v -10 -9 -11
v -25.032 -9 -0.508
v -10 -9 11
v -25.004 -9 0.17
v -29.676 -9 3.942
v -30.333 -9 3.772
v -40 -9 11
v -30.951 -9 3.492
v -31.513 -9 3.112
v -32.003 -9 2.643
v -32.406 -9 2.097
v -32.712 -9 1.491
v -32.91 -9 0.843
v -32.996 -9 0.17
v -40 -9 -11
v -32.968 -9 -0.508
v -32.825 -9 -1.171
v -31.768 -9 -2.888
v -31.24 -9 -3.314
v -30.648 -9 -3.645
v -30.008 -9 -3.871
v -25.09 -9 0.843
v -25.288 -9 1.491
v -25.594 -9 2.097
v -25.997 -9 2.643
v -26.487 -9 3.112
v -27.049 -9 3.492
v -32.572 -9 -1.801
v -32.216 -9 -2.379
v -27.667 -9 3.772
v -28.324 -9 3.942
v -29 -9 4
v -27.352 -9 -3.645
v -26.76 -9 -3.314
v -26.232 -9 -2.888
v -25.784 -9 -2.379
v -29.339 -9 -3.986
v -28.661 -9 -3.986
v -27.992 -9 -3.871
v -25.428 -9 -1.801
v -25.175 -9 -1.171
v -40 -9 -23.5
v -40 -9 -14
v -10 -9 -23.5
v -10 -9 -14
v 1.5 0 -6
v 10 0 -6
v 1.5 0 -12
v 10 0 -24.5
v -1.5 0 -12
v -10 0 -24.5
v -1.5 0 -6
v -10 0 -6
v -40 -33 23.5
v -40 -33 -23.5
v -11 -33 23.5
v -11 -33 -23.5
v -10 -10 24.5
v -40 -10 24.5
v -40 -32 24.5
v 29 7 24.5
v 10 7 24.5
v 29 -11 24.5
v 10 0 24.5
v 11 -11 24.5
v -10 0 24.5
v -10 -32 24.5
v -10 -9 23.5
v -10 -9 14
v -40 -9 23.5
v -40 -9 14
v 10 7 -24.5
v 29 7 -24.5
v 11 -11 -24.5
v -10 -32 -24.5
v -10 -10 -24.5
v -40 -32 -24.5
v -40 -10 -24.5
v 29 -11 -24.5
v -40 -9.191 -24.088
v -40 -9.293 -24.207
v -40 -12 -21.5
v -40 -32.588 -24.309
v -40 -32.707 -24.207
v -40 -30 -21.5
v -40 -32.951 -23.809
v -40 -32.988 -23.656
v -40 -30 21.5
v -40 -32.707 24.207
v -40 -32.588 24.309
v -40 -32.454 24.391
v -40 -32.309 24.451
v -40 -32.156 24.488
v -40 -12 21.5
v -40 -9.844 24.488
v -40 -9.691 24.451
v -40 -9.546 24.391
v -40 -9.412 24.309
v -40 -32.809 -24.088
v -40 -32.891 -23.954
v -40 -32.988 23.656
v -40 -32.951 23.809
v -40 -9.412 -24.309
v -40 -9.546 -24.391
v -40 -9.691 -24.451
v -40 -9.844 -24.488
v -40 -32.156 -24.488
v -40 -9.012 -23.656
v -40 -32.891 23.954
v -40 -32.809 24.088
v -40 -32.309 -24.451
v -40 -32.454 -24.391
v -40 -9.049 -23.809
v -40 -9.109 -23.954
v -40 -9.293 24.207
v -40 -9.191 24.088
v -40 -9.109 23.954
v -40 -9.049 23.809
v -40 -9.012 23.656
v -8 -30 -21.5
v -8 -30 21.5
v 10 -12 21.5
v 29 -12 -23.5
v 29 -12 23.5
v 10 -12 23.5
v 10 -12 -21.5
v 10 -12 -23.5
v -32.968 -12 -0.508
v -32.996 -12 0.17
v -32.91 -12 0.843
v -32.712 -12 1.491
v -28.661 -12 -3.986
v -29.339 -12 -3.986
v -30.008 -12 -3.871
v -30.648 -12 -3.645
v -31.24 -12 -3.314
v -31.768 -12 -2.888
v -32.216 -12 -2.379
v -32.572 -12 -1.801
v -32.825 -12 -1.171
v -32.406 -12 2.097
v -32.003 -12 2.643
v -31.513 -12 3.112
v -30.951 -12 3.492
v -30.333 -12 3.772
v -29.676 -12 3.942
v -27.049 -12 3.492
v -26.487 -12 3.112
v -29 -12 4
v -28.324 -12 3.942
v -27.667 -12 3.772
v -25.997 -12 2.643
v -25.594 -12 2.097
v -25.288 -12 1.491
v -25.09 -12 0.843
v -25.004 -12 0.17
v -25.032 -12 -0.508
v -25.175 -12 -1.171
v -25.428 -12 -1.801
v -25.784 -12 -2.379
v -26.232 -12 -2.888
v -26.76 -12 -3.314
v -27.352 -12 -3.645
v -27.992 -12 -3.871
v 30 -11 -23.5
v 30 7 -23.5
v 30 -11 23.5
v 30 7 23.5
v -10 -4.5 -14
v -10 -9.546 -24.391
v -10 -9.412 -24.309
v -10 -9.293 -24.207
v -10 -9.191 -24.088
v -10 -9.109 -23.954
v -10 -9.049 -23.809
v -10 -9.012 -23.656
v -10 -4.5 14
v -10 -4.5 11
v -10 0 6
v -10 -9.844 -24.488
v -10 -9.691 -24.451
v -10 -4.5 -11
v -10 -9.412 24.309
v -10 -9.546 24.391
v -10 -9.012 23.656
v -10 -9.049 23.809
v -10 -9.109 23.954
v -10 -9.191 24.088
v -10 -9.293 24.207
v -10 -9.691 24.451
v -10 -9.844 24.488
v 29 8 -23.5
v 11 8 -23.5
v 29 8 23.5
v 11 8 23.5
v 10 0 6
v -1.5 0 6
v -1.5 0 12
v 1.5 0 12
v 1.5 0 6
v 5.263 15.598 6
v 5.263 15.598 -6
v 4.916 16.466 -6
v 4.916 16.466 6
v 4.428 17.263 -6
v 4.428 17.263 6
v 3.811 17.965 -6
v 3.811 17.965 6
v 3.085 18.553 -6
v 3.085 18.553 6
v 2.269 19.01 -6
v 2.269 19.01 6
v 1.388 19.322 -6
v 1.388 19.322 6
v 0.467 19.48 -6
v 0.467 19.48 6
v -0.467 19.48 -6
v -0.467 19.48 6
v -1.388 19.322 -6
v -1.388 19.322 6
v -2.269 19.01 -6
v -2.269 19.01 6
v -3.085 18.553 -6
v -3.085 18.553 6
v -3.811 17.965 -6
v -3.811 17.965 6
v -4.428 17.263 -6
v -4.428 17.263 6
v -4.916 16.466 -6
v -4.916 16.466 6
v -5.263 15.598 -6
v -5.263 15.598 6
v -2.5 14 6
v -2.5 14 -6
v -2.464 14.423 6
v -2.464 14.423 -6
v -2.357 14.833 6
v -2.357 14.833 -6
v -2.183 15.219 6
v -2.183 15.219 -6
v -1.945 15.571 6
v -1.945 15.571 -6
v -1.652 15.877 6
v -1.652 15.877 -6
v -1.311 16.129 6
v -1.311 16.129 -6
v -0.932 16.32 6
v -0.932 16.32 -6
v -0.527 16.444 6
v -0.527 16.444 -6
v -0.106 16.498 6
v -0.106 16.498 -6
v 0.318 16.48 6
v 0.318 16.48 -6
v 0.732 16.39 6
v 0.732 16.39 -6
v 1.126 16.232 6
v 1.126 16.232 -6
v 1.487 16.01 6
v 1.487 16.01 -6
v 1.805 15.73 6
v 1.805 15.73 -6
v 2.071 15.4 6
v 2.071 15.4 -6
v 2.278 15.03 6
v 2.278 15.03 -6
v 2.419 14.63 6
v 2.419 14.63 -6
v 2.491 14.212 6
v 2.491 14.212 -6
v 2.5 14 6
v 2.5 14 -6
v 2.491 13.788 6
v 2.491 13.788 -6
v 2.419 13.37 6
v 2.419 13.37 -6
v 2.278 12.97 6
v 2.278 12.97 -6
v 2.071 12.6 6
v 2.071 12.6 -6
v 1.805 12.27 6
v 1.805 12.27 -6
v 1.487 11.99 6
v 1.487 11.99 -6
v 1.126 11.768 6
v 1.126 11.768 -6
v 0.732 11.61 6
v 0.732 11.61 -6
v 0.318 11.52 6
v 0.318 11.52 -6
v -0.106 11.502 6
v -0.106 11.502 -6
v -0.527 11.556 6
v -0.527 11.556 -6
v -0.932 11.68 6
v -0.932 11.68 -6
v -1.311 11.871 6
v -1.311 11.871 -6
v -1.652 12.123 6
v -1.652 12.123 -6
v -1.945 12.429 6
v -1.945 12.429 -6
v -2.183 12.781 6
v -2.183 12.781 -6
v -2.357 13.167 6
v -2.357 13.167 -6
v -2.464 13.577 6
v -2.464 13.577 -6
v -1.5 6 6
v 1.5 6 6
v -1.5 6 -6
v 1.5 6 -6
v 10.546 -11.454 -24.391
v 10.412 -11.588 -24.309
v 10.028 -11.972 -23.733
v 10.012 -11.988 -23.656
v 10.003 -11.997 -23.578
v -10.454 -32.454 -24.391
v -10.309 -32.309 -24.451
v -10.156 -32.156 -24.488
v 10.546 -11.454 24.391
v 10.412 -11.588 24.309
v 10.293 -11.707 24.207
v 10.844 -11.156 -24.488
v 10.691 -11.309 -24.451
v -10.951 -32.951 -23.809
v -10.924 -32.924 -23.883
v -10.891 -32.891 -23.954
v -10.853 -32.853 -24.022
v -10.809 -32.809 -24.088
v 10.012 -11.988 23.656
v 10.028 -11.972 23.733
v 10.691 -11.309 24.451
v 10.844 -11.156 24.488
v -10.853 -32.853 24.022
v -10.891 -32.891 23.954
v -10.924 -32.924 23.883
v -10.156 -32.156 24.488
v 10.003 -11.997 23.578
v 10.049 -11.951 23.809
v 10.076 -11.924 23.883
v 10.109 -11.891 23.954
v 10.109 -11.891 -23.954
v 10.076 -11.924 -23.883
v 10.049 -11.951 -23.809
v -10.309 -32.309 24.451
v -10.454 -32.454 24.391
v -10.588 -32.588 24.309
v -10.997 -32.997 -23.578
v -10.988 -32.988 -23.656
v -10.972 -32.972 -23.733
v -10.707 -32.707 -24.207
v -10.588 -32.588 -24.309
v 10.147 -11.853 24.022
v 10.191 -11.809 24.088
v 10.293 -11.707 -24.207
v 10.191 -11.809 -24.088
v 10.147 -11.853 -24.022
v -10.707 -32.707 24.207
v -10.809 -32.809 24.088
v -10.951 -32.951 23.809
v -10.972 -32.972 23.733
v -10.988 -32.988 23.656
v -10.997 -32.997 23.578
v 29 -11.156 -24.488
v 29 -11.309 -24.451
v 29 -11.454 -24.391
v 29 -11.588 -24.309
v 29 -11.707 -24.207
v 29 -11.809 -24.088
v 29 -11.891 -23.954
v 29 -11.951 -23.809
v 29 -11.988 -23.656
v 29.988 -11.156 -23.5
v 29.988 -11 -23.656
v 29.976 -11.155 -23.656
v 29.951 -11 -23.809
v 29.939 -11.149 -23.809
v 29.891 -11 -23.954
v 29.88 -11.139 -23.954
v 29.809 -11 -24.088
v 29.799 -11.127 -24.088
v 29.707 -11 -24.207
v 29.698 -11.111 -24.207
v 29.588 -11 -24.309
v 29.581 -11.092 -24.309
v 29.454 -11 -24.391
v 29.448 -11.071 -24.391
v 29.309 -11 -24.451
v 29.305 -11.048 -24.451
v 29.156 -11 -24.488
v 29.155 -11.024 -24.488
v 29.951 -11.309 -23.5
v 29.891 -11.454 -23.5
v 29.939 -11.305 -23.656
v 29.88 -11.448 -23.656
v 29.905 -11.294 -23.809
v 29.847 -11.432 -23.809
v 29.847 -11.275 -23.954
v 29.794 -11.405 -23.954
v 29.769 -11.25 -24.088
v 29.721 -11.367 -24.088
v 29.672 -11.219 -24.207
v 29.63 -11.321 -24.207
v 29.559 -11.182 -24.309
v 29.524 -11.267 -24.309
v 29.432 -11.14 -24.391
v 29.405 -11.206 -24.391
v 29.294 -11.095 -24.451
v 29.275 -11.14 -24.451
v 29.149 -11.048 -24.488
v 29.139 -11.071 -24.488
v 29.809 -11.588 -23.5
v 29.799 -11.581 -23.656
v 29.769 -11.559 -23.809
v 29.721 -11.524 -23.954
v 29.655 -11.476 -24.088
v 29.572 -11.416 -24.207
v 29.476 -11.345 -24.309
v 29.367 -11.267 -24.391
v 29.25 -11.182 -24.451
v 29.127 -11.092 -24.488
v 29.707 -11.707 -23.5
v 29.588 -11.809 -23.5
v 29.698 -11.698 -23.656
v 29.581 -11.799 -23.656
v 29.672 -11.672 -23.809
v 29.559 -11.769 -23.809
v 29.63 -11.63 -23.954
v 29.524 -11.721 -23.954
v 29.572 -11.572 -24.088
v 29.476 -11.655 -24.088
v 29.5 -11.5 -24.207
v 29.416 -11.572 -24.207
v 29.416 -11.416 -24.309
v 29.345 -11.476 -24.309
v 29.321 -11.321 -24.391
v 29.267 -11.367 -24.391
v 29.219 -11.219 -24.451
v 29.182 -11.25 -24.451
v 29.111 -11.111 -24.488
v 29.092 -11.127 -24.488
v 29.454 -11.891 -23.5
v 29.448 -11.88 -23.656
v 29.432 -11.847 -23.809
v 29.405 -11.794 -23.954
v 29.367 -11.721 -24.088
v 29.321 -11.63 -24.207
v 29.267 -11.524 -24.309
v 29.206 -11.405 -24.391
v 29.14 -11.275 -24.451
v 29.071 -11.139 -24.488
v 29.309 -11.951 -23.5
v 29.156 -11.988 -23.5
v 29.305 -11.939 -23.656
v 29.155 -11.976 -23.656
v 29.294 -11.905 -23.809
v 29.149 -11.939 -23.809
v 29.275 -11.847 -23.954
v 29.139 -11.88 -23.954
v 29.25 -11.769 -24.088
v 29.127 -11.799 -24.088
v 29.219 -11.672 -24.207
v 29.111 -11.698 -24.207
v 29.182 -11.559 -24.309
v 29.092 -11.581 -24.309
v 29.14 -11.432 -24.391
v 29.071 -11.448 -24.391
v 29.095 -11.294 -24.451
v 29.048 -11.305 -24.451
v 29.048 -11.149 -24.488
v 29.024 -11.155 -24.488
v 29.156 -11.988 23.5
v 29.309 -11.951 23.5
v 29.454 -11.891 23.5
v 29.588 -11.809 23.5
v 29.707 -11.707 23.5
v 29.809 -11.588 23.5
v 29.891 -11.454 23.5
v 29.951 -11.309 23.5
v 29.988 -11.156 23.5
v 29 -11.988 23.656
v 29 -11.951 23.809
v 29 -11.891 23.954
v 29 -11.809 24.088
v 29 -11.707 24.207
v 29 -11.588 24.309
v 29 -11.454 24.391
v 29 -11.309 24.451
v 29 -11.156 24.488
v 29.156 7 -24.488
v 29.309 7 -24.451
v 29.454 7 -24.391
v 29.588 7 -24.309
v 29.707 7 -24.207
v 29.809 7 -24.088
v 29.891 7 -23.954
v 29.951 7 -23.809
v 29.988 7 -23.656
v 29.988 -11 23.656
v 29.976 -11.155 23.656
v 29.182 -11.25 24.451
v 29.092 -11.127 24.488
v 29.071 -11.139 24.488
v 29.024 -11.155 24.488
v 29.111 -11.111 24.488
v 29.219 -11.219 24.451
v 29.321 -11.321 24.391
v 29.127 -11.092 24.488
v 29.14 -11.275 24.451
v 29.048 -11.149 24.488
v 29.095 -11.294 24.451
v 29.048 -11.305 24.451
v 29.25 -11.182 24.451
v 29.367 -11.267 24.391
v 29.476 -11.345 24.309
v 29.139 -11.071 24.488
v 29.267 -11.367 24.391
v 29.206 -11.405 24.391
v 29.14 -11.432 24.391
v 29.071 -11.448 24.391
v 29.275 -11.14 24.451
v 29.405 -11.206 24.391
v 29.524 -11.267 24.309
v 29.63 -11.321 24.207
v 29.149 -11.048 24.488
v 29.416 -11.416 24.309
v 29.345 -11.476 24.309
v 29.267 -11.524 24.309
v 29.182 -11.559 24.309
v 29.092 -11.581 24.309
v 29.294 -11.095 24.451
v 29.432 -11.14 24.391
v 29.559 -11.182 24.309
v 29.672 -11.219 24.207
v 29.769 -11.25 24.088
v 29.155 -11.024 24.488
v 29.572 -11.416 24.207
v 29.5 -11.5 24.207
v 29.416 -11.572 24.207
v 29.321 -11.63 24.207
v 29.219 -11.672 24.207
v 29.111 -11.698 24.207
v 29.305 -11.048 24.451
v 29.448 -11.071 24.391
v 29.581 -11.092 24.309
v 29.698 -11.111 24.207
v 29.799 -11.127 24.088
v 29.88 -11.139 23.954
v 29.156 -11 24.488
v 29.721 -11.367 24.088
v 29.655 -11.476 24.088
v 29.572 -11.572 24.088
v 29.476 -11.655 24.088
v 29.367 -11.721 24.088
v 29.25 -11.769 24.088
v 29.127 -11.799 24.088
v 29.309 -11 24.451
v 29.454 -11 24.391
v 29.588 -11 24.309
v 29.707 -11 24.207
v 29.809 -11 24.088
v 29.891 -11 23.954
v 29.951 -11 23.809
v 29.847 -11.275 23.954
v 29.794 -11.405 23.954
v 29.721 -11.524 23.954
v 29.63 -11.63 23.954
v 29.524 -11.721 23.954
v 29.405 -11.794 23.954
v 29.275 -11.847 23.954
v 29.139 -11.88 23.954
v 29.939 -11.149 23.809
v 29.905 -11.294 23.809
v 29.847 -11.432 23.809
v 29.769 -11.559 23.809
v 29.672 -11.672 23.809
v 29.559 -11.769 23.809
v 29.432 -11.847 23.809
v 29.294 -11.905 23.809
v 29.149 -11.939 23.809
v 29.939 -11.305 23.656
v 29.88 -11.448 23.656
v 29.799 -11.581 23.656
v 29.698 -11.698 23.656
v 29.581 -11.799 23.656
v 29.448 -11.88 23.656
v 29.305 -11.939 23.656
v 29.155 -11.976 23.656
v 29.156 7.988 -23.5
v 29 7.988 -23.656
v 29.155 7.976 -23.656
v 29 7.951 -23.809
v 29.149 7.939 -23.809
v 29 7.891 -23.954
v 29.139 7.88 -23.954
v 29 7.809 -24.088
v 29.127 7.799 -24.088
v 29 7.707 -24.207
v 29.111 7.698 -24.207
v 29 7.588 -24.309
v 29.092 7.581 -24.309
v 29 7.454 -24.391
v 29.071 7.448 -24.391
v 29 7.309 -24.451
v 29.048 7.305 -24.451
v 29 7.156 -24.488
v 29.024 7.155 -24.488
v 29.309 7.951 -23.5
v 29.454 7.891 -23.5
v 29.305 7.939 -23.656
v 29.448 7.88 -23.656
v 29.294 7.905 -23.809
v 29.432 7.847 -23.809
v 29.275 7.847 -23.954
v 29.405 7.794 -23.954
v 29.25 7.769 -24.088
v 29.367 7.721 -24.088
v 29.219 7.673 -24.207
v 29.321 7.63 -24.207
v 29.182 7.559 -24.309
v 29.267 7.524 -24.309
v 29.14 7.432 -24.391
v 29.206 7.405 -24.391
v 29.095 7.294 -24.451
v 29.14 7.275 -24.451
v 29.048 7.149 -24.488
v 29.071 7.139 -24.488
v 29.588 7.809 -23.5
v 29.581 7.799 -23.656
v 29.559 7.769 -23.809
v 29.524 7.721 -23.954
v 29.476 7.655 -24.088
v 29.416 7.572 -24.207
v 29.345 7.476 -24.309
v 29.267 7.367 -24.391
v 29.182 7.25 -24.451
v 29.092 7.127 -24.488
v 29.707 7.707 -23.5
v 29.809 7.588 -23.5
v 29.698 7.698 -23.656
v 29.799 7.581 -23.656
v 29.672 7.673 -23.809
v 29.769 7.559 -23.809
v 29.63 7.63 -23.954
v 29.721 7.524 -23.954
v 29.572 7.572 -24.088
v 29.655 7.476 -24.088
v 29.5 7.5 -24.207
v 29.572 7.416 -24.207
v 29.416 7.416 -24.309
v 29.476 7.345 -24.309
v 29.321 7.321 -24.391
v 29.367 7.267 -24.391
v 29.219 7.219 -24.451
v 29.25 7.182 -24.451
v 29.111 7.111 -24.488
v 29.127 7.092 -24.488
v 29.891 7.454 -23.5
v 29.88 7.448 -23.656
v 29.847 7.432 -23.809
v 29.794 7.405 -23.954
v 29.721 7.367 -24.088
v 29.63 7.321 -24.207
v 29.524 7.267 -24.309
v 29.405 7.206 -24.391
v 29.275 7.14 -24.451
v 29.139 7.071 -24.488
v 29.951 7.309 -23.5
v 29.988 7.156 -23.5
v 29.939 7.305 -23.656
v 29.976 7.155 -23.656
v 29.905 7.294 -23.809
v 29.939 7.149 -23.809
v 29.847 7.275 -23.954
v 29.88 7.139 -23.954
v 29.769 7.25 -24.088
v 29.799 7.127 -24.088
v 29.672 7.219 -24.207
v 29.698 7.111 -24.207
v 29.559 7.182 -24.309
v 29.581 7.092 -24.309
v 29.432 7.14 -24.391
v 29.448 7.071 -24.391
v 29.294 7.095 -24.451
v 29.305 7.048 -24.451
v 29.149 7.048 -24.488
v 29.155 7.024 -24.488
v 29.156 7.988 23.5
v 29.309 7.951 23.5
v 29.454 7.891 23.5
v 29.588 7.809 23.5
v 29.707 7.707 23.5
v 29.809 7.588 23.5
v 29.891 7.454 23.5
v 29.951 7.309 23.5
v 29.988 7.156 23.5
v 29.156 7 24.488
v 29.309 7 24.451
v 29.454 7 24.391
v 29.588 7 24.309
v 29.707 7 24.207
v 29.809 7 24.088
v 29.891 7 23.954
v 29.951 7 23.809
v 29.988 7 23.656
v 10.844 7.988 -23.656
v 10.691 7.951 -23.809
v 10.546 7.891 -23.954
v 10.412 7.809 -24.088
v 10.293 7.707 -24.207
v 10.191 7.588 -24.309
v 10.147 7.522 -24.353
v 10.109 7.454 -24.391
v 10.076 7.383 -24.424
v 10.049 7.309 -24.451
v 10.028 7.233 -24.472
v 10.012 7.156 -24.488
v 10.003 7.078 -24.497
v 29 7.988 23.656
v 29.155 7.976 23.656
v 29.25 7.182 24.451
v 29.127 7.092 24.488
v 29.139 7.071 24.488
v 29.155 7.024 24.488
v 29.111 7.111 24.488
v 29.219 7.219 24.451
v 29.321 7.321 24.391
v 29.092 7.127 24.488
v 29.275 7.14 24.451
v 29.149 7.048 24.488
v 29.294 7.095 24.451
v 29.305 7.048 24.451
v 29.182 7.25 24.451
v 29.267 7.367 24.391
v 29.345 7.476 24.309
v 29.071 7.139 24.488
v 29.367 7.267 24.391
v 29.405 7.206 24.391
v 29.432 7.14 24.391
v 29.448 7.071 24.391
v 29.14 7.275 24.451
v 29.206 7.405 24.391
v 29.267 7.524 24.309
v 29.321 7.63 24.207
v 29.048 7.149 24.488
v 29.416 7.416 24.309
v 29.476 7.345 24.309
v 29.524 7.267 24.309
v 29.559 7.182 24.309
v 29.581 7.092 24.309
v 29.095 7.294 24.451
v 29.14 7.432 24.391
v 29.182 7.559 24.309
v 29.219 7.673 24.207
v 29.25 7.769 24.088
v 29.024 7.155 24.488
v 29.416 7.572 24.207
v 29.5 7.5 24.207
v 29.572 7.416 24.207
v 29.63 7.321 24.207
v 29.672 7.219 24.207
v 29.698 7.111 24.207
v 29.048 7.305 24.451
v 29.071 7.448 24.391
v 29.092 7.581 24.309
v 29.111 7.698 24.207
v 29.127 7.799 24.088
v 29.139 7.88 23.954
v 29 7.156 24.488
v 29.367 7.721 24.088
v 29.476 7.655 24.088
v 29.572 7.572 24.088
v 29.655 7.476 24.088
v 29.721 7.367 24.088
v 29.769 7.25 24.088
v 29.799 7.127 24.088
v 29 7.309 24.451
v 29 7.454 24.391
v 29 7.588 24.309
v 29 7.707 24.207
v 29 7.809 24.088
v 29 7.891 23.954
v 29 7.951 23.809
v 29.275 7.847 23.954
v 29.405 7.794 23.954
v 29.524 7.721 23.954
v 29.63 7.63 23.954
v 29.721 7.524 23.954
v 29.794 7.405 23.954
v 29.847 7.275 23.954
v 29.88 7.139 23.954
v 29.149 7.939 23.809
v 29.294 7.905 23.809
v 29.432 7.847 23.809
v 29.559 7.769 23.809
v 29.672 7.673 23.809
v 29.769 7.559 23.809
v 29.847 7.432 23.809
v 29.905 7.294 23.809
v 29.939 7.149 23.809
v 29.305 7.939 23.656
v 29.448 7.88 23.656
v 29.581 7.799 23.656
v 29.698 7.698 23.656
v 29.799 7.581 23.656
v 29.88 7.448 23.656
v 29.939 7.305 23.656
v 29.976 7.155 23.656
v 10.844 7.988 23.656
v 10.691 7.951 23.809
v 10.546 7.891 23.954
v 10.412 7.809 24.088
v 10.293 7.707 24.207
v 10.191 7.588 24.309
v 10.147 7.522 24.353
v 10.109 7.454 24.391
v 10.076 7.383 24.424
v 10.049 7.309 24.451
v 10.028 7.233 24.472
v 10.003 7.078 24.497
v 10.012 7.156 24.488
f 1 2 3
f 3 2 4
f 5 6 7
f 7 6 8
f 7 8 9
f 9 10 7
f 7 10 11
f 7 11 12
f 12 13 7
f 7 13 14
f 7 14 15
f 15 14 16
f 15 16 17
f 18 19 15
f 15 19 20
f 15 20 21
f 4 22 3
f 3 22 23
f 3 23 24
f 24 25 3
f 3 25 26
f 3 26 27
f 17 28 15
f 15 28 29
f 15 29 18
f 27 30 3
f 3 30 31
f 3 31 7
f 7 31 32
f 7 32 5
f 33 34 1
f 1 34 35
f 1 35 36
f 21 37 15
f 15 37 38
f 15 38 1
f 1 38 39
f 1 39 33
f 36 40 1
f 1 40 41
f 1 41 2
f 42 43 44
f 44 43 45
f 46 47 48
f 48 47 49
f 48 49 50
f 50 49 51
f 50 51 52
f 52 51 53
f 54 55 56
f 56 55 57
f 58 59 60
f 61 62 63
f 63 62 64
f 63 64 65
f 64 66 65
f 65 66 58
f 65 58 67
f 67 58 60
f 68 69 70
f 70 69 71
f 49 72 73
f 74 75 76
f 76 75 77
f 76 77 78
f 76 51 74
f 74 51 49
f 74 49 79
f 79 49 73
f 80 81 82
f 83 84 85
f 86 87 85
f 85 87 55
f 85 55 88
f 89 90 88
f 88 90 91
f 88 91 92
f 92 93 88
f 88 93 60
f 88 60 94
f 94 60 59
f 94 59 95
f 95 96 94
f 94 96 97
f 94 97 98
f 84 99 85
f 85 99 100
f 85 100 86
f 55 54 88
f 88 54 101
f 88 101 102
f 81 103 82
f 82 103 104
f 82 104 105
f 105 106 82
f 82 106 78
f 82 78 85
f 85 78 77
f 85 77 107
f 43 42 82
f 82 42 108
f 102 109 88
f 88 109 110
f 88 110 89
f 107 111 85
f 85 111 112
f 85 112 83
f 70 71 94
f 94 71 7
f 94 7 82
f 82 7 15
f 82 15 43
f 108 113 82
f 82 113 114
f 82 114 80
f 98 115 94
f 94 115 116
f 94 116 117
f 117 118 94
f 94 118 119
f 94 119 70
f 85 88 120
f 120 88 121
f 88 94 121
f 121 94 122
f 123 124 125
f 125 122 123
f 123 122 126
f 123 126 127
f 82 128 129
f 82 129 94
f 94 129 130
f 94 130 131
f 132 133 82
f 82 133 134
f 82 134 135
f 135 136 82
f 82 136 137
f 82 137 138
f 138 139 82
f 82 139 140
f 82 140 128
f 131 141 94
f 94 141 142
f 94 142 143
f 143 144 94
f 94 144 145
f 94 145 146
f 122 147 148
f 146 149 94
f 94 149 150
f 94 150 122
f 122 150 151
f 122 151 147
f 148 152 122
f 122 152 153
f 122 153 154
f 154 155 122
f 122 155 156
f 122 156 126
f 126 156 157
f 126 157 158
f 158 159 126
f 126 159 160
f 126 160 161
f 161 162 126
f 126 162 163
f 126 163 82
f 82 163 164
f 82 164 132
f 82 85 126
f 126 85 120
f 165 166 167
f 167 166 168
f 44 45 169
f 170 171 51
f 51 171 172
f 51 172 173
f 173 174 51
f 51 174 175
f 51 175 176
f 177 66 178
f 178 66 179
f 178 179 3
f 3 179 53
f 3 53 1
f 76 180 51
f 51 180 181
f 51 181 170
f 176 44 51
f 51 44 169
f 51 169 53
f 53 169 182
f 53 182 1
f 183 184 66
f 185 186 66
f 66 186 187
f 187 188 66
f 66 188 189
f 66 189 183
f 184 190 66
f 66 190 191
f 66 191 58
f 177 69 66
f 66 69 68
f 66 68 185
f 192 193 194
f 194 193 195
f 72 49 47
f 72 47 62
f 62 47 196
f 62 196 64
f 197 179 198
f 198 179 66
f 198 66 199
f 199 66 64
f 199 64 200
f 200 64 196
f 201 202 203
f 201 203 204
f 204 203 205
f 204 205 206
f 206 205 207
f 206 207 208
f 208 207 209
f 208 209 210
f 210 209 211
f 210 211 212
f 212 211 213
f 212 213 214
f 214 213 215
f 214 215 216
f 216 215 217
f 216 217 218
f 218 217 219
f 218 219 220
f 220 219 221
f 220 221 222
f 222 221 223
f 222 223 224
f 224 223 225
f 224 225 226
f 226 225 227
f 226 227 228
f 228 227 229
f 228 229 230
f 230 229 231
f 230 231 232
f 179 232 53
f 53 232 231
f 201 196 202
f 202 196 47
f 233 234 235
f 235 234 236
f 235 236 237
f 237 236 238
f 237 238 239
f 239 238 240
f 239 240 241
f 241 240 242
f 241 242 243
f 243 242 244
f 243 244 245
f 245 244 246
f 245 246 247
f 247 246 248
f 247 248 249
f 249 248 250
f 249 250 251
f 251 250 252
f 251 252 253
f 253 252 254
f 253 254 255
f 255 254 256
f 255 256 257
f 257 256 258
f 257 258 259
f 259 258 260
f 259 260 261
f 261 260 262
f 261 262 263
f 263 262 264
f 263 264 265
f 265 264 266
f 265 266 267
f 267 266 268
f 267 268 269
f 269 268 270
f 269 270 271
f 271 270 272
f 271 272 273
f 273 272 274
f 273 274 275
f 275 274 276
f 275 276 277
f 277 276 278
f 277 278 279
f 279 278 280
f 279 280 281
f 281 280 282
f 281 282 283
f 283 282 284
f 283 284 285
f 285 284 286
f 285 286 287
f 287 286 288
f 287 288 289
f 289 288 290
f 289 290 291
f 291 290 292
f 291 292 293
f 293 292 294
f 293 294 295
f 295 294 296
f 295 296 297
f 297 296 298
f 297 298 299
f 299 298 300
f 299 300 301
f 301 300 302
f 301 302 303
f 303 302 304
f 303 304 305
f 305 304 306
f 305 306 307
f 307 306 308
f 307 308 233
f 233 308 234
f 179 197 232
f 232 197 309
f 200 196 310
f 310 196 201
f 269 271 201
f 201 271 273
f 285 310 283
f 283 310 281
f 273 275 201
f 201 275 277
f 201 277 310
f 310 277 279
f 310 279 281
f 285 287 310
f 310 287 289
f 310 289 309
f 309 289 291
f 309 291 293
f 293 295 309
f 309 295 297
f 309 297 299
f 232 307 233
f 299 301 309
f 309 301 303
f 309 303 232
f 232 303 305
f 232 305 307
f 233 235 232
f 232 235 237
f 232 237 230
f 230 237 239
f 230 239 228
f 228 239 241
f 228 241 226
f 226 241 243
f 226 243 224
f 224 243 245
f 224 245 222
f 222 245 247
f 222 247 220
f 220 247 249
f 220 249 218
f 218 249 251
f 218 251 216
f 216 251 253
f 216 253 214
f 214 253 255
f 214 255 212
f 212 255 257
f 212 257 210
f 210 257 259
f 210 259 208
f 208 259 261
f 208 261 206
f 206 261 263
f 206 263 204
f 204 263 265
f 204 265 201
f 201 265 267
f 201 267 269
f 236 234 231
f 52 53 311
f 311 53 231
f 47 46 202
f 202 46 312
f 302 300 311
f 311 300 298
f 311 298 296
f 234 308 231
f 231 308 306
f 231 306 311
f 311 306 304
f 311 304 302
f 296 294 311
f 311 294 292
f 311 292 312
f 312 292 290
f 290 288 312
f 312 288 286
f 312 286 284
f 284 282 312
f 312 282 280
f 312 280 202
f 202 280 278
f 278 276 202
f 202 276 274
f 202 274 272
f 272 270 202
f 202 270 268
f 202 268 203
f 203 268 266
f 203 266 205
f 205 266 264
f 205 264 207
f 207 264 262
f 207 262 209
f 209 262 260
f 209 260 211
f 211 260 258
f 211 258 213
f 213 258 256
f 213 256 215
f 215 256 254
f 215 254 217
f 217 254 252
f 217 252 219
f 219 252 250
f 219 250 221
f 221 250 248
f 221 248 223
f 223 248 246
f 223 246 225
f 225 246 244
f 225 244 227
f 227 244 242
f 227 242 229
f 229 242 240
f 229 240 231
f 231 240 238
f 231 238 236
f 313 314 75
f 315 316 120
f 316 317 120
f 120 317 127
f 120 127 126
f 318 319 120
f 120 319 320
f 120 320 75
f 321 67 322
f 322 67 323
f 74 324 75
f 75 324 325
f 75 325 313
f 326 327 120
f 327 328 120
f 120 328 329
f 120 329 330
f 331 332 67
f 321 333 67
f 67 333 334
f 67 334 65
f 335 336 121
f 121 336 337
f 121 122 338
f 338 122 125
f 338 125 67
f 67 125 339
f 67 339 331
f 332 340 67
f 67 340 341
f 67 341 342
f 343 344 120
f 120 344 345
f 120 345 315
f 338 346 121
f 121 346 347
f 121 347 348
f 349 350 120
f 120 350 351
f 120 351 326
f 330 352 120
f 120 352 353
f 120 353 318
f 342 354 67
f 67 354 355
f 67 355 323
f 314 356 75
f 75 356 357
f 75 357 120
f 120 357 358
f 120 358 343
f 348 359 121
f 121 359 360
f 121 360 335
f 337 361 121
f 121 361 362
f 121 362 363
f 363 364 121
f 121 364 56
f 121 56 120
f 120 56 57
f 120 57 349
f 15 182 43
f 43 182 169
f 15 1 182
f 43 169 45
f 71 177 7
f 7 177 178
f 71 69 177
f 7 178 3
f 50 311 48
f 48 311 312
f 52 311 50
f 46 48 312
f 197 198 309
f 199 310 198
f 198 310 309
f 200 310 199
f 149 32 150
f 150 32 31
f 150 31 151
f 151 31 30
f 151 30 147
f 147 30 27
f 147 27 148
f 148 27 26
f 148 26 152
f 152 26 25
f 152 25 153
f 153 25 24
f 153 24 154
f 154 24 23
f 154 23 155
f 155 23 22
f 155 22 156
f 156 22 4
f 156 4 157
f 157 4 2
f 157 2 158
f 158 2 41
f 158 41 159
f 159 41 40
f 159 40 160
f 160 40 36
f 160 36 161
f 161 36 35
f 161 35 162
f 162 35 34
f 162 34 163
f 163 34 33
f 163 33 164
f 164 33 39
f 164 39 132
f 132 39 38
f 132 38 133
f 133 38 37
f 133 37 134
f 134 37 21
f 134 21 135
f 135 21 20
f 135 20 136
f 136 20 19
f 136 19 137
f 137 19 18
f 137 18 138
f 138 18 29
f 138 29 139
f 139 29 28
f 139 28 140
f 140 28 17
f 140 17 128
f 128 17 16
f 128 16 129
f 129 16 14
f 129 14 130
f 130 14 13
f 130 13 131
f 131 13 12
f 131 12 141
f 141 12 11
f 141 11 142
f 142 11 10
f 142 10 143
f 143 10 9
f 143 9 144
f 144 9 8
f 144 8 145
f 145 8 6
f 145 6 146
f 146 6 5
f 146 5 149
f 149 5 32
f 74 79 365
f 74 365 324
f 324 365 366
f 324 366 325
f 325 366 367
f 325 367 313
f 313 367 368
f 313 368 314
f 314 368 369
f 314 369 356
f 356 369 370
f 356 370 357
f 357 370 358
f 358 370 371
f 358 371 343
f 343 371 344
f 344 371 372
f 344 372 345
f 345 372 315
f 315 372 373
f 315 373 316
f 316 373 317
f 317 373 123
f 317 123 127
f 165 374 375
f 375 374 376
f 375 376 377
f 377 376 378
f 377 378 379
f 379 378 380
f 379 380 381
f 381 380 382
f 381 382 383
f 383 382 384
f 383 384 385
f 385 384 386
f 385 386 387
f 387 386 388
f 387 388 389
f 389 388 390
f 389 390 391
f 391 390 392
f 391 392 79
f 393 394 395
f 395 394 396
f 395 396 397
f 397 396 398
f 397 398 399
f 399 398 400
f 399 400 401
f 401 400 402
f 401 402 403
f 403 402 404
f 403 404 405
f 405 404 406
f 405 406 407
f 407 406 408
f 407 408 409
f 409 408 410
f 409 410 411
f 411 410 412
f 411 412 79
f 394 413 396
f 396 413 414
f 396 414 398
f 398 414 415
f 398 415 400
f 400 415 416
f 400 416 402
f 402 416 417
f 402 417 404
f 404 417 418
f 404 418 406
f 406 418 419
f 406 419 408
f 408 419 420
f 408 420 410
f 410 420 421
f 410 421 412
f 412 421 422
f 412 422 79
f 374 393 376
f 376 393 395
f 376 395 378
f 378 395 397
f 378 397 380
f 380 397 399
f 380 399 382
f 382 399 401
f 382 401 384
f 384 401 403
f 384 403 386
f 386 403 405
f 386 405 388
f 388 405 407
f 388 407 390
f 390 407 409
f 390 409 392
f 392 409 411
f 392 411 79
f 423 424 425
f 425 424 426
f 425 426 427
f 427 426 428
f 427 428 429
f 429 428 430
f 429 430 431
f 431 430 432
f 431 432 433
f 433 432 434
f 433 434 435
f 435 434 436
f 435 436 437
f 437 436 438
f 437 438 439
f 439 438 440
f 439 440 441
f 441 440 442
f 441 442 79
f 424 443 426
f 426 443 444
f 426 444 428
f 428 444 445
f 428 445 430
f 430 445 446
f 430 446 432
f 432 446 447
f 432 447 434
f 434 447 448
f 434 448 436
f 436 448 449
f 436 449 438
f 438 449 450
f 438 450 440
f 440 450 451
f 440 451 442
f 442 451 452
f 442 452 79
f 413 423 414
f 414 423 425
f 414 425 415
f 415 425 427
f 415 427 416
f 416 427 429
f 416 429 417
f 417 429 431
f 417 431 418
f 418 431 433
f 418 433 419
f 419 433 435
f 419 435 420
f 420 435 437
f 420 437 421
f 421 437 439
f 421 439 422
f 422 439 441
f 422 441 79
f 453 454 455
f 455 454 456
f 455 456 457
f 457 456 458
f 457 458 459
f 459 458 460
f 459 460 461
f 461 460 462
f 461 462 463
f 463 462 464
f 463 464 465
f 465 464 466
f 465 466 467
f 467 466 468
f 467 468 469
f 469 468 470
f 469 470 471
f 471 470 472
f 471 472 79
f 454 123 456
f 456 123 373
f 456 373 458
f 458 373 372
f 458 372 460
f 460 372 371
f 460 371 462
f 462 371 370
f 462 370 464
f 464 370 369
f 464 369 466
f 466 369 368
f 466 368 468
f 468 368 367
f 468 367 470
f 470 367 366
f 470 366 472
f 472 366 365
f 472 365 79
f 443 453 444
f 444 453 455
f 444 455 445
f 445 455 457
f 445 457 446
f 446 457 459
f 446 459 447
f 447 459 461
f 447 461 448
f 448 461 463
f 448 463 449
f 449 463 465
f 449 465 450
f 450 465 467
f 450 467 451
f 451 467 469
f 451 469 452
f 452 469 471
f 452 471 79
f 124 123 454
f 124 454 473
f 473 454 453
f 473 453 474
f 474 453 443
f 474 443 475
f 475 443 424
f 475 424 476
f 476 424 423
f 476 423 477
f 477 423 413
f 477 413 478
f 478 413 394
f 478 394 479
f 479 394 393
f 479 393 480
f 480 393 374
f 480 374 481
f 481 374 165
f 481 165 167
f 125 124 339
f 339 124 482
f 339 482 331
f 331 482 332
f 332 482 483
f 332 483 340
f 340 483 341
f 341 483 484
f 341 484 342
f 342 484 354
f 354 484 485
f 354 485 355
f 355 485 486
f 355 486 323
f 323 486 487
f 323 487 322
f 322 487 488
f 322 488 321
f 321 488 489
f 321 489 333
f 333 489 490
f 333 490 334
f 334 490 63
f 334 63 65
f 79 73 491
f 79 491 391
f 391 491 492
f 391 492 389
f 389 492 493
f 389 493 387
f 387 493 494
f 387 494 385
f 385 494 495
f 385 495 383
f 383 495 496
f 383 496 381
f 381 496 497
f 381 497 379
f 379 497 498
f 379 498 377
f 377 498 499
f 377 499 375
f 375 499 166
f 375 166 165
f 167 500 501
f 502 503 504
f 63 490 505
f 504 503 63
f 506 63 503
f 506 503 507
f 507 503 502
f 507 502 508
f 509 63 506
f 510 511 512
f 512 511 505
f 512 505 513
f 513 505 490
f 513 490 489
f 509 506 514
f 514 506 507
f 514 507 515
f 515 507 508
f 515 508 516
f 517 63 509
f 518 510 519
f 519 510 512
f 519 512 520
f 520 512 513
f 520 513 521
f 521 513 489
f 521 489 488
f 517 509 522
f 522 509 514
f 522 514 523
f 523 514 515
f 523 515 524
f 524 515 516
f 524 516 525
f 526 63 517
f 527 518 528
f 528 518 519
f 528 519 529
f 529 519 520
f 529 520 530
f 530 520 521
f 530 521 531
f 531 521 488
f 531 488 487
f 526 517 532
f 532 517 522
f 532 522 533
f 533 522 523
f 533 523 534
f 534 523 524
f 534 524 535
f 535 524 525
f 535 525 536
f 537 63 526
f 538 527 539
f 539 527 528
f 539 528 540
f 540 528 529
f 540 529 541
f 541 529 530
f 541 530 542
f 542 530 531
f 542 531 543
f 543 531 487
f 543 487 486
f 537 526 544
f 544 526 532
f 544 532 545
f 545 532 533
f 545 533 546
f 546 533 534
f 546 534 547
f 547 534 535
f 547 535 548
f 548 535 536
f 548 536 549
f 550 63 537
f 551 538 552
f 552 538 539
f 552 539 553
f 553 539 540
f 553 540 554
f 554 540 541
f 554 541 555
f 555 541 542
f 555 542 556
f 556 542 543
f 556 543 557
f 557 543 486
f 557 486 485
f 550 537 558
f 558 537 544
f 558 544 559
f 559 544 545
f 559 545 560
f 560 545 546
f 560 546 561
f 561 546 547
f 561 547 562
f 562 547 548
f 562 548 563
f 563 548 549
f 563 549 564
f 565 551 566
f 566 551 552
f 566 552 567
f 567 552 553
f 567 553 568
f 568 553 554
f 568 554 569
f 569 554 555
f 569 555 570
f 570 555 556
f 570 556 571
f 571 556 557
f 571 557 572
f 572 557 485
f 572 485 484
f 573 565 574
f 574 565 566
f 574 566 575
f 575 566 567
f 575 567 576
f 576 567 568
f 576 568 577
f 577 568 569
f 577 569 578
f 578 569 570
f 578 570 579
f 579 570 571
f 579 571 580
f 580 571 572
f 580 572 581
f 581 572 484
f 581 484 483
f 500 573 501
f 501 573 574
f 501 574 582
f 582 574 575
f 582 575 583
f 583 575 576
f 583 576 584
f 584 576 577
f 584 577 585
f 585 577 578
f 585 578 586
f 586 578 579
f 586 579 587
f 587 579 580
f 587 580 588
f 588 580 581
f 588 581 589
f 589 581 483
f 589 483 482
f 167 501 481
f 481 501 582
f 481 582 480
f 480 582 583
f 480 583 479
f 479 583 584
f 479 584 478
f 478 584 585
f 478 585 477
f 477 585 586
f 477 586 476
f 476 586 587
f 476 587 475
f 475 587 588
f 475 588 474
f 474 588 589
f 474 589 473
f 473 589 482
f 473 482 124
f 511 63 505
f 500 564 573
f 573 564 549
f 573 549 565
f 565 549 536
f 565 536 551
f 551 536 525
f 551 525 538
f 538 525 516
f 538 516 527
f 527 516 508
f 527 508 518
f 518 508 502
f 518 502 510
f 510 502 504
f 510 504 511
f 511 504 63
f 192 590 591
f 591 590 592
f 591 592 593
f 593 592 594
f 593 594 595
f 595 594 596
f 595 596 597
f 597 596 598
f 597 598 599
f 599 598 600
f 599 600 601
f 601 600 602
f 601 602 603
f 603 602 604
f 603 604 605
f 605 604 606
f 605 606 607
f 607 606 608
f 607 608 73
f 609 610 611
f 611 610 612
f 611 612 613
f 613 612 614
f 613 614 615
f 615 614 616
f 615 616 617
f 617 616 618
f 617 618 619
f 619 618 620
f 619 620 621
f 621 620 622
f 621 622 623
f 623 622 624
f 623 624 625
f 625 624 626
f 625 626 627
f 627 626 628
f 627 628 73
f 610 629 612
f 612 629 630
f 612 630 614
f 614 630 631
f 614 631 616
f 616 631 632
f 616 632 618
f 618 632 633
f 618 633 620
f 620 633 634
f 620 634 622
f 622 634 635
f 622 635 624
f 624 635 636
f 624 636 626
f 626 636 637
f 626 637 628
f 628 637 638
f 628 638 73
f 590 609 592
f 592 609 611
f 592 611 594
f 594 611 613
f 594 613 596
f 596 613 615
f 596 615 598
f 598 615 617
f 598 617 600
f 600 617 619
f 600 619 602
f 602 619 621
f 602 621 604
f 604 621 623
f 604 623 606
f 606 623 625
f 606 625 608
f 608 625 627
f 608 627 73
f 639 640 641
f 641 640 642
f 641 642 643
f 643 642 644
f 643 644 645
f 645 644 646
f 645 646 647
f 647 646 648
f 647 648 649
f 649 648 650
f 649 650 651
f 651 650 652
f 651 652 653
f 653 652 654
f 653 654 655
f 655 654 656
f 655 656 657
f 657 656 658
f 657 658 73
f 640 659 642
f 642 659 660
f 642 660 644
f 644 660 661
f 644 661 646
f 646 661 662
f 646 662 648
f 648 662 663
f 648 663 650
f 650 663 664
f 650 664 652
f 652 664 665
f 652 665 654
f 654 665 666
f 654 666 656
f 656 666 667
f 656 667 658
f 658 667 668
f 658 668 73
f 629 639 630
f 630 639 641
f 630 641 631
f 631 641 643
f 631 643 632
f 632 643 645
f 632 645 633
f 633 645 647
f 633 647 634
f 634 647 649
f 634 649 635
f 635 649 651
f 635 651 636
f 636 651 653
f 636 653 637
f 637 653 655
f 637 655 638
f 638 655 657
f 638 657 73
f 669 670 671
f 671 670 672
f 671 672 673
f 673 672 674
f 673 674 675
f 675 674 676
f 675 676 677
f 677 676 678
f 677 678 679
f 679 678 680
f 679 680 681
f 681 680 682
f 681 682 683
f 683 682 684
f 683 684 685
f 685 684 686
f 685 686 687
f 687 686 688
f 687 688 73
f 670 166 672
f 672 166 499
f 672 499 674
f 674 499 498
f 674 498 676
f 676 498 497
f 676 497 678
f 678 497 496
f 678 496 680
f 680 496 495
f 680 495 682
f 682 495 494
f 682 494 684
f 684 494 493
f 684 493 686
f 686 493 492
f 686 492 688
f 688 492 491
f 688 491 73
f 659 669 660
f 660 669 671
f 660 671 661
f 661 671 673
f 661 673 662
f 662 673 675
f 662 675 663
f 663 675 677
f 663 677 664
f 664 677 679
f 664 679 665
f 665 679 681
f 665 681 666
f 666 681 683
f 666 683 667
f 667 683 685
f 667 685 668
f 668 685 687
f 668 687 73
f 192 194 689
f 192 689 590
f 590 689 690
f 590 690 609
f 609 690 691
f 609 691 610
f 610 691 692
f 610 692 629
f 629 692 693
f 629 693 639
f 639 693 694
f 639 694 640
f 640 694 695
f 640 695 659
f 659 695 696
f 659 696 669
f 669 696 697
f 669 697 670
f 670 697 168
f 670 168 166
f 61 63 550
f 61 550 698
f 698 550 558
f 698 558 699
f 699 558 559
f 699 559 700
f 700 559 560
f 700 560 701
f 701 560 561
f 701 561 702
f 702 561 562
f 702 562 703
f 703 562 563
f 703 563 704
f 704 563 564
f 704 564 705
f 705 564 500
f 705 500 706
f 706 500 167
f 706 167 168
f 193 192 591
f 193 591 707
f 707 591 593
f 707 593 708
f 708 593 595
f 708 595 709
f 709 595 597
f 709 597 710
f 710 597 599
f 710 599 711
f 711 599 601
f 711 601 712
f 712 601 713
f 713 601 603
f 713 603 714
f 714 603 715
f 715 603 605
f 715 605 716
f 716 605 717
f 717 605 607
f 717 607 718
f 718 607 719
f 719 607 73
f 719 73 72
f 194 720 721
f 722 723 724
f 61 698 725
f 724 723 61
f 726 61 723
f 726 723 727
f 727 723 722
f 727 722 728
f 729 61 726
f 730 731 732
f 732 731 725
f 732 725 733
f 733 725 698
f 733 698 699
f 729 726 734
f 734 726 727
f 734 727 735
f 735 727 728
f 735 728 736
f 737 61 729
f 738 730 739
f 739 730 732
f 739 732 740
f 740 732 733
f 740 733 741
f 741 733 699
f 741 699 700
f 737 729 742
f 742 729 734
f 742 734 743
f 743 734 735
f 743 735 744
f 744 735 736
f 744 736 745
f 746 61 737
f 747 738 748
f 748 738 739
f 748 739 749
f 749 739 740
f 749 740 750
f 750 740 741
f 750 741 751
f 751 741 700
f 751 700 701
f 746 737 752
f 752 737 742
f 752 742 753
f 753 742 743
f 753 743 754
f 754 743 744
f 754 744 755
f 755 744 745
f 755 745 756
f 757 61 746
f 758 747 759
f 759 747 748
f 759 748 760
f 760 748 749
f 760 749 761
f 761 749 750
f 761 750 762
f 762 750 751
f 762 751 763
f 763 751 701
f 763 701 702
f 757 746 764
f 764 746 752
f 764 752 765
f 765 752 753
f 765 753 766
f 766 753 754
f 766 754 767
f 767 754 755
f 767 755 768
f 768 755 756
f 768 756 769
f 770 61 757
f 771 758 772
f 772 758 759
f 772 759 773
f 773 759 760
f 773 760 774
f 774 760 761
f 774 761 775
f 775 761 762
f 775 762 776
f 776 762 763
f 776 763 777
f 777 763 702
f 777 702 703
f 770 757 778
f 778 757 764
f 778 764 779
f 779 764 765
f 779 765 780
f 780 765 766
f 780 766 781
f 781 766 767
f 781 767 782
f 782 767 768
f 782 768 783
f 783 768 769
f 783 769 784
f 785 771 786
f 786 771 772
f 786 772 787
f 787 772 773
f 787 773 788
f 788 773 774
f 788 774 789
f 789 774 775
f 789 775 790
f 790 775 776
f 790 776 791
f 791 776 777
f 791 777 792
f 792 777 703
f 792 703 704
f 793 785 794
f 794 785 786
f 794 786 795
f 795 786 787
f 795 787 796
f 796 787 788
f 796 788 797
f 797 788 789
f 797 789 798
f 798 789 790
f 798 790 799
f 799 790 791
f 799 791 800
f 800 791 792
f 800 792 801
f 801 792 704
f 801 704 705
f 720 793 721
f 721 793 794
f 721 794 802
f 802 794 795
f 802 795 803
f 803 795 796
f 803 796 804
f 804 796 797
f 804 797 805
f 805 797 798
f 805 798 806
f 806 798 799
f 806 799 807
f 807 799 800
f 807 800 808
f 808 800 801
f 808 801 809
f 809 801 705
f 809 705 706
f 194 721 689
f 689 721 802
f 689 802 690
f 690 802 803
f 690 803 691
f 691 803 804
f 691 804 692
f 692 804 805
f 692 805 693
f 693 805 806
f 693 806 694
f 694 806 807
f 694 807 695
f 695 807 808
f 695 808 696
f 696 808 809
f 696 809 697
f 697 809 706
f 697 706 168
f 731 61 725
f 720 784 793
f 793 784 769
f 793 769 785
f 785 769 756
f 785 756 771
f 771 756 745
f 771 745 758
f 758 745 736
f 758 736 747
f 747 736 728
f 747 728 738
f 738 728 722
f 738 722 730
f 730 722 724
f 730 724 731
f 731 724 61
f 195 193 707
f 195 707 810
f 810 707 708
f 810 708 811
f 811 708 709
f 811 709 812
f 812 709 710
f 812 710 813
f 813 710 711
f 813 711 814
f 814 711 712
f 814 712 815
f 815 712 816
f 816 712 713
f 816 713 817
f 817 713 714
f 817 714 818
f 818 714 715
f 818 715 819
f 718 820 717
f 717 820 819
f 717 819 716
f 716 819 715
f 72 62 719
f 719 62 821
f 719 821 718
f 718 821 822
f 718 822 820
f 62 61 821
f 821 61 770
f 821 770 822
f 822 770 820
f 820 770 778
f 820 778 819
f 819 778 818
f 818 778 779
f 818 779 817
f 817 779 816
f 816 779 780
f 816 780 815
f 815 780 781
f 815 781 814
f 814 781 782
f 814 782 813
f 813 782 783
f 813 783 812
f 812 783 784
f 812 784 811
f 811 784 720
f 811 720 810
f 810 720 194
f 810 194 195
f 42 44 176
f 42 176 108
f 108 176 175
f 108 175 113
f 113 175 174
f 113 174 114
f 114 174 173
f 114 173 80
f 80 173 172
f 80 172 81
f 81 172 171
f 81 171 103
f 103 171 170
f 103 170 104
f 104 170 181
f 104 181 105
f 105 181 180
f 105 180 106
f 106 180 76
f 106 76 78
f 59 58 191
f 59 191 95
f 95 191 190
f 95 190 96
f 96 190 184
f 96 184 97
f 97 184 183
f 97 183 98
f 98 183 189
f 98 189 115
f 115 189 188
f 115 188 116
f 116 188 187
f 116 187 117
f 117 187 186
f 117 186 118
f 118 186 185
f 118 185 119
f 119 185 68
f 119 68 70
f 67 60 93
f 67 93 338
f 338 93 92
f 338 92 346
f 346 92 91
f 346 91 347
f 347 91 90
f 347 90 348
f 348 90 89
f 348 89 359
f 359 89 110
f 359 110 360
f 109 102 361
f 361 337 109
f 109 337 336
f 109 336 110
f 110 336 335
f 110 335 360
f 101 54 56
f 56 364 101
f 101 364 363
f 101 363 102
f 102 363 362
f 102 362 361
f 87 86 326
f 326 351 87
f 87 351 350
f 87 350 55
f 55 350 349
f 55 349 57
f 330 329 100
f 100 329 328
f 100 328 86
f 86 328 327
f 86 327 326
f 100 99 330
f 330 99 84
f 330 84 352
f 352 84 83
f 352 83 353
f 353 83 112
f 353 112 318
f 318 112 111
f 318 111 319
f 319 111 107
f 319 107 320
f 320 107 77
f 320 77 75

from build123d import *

# Parameters (mm, degrees)
EXTRUDE_1_DEPTH         = 30
EXTRUDE_1_DEPTH_BACK    = 40
SKETCH_2_W              = 49
SKETCH_2_H              = 24
SKETCH_2_W_2            = 43
SKETCH_2_H_2            = 18
SKETCH_1_R              = 2.5
EXTRUDE_1_2_DEPTH       = 6
SKETCH_1_3_W            = 20
SKETCH_1_3_H            = 8
EXTRUDE_2_DEPTH         = 24.5
CUT_EXTRUDE_1_DEPTH     = 25
RIB_1_REACH             = 58.032
SKETCH_4_WALLS_W        = 145.49538697
SKETCH_4_WALLS_H        = 3
RIB_2_REACH             = 65.649
SKETCH_6_WALLS_W        = 3
SKETCH_6_WALLS_H        = 137.784142328
CUT_EXTRUDE_START       = -12
CUT_EXTRUDE_2_OUTLINE_R = 4
CUT_EXTRUDE_2_DEPTH     = 3
FILLET_1_R              = 1


# Read off the part's stored shape, not the designer's step: 컷-돌출2
with BuildPart() as part:
    # 스케치2 → Extrude 1 (new, two sides: drawn at the far end of the back side and taken through both)
    with BuildSketch(Plane(origin=(0, 0, 0), x_dir=(0, 0, -1), z_dir=(1, 0, 0)).offset(-EXTRUDE_1_DEPTH_BACK)):
        with Locations((0, -21)):
            Rectangle(SKETCH_2_W, SKETCH_2_H)
        with Locations((0, -21)):
            Rectangle(SKETCH_2_W_2, SKETCH_2_H_2, mode=Mode.SUBTRACT)
    extrude(amount=EXTRUDE_1_DEPTH + EXTRUDE_1_DEPTH_BACK)



with BuildPart() as body_2:
    # 스케치1 → Extrude 1 2 (new, symmetric)
    with BuildSketch(Plane.XY):
        with BuildLine():
            ThreePointArc((-5.262640911, 15.598314937), (0, 19.5), (5.262640911, 15.598314937))
            Line((5.262640911, 15.598314937), (10, 0))
            Line((10, 0), (-10, 0))
            Line((-10, 0), (-5.262640911, 15.598314937))
        make_face()
        with Locations((0, 14)):
            Circle(SKETCH_1_R, mode=Mode.SUBTRACT)
    extrude(amount=EXTRUDE_1_2_DEPTH, both=True)


with BuildPart() as part_1:
    add(part.part)

    add(body_2.part)  # 보스-돌출2 merges body 2
    # 스케치1<3> → 보스-돌출2 (add, symmetric)
    with BuildSketch(Plane.XY):
        Polygon((10, 0), (-10, 0), (-10, -12), (10, -12), (30, -12), (30, 0), align=None)
        with Locations((20, 4)):
            Rectangle(SKETCH_1_3_W, SKETCH_1_3_H)
    extrude(amount=EXTRUDE_2_DEPTH, both=True)

    # 스케치1<4> → 컷-돌출1 (cut, symmetric)
    with BuildSketch(Plane.XY):
        Polygon((30, -12), (10, -12), (-11, -33), (30, -33), align=None)
    extrude(amount=CUT_EXTRUDE_1_DEPTH, both=True, mode=Mode.SUBTRACT)

    # 스케치4 walls → 보강대1 (add, up to next)
    with BuildSketch(Plane(origin=(0.4400978, -2.93398533, 0), x_dir=(0.9889363528682976, 0.14834045293024456, 0), z_dir=(-0.14834045293024456, 0.9889363528682976, 0)), mode=Mode.PRIVATE) as rib_1_sk1:
        with Locations((-25.177107795, -12.5)):
            Rectangle(SKETCH_4_WALLS_W, SKETCH_4_WALLS_H)
    rib_1_tool1 = extrude(rib_1_sk1.sketch, amount=-RIB_1_REACH, mode=Mode.PRIVATE) - part_1.part
    # 스케치4 walls → 보강대1 (add, up to next)
    with BuildSketch(Plane(origin=(0.4400978, -2.93398533, 0), x_dir=(0.9889363528682976, 0.14834045293024456, 0), z_dir=(-0.14834045293024456, 0.9889363528682976, 0)), mode=Mode.PRIVATE) as rib_1_sk2:
        with Locations((-25.177107795, 12.5)):
            Rectangle(SKETCH_4_WALLS_W, SKETCH_4_WALLS_H)
    rib_1_tool2 = extrude(rib_1_sk2.sketch, amount=-RIB_1_REACH, mode=Mode.PRIVATE) - part_1.part
    add(rib_1_tool1.solids().sort_by_distance((-24.458459359, -6.668768904, 12.5))[0])
    add(rib_1_tool2.solids().sort_by_distance((-24.458459359, -6.668768904, -12.5))[0])

    # 스케치6 walls → 보강대2 (add, up to next)
    with BuildSketch(Plane(origin=(0, 6, -6), x_dir=(1, 0, 0), z_dir=(0, 0.7071067811865477, -0.7071067811865474)), mode=Mode.PRIVATE) as rib_2_sk1:
        with Locations((0, 4.242640687)):
            Rectangle(SKETCH_6_WALLS_W, SKETCH_6_WALLS_H)
    rib_2_tool1 = extrude(rib_2_sk1.sketch, amount=-RIB_2_REACH, mode=Mode.PRIVATE) - part_1.part
    rib_2 = rib_2_tool1.solids().sort_by_distance((0, 3, -9))[0]
    add(rib_2)

    # 대칭 복사1: 보강대2 across plane
    add(rib_2.mirror(Plane.XY))

    # 컷-돌출2 outline → 컷-돌출2 (cut)
    with BuildSketch(Plane(origin=(0, 0, 0), x_dir=(1, 0, 0), z_dir=(0, 1, 0)).offset(CUT_EXTRUDE_START)):
        with Locations((-29, 0)):
            Circle(CUT_EXTRUDE_2_OUTLINE_R)
    extrude(amount=CUT_EXTRUDE_2_DEPTH, mode=Mode.SUBTRACT)

    # 필렛1
    fillet_1_edges = [part_1.edges().sort_by_distance(p)[0] for p in [
        (30, -2, 24.5),
        (30, -12, 0),
        (20, 8, -24.5),
        (30, 8, 0),
        (10, 8, 0),
        (20, 8, 24.5),
        (-25.5, -33, 24.5),
        (-25, -9, 24.5),
        (-25, -9, -24.5),
        (-25.5, -33, -24.5),
        (30, -2, -24.5),
        (20, -12, 24.5),
        (20, -12, -24.5),
    ]]
    fillet(fillet_1_edges, radius=FILLET_1_R)


solid = part_1.part
